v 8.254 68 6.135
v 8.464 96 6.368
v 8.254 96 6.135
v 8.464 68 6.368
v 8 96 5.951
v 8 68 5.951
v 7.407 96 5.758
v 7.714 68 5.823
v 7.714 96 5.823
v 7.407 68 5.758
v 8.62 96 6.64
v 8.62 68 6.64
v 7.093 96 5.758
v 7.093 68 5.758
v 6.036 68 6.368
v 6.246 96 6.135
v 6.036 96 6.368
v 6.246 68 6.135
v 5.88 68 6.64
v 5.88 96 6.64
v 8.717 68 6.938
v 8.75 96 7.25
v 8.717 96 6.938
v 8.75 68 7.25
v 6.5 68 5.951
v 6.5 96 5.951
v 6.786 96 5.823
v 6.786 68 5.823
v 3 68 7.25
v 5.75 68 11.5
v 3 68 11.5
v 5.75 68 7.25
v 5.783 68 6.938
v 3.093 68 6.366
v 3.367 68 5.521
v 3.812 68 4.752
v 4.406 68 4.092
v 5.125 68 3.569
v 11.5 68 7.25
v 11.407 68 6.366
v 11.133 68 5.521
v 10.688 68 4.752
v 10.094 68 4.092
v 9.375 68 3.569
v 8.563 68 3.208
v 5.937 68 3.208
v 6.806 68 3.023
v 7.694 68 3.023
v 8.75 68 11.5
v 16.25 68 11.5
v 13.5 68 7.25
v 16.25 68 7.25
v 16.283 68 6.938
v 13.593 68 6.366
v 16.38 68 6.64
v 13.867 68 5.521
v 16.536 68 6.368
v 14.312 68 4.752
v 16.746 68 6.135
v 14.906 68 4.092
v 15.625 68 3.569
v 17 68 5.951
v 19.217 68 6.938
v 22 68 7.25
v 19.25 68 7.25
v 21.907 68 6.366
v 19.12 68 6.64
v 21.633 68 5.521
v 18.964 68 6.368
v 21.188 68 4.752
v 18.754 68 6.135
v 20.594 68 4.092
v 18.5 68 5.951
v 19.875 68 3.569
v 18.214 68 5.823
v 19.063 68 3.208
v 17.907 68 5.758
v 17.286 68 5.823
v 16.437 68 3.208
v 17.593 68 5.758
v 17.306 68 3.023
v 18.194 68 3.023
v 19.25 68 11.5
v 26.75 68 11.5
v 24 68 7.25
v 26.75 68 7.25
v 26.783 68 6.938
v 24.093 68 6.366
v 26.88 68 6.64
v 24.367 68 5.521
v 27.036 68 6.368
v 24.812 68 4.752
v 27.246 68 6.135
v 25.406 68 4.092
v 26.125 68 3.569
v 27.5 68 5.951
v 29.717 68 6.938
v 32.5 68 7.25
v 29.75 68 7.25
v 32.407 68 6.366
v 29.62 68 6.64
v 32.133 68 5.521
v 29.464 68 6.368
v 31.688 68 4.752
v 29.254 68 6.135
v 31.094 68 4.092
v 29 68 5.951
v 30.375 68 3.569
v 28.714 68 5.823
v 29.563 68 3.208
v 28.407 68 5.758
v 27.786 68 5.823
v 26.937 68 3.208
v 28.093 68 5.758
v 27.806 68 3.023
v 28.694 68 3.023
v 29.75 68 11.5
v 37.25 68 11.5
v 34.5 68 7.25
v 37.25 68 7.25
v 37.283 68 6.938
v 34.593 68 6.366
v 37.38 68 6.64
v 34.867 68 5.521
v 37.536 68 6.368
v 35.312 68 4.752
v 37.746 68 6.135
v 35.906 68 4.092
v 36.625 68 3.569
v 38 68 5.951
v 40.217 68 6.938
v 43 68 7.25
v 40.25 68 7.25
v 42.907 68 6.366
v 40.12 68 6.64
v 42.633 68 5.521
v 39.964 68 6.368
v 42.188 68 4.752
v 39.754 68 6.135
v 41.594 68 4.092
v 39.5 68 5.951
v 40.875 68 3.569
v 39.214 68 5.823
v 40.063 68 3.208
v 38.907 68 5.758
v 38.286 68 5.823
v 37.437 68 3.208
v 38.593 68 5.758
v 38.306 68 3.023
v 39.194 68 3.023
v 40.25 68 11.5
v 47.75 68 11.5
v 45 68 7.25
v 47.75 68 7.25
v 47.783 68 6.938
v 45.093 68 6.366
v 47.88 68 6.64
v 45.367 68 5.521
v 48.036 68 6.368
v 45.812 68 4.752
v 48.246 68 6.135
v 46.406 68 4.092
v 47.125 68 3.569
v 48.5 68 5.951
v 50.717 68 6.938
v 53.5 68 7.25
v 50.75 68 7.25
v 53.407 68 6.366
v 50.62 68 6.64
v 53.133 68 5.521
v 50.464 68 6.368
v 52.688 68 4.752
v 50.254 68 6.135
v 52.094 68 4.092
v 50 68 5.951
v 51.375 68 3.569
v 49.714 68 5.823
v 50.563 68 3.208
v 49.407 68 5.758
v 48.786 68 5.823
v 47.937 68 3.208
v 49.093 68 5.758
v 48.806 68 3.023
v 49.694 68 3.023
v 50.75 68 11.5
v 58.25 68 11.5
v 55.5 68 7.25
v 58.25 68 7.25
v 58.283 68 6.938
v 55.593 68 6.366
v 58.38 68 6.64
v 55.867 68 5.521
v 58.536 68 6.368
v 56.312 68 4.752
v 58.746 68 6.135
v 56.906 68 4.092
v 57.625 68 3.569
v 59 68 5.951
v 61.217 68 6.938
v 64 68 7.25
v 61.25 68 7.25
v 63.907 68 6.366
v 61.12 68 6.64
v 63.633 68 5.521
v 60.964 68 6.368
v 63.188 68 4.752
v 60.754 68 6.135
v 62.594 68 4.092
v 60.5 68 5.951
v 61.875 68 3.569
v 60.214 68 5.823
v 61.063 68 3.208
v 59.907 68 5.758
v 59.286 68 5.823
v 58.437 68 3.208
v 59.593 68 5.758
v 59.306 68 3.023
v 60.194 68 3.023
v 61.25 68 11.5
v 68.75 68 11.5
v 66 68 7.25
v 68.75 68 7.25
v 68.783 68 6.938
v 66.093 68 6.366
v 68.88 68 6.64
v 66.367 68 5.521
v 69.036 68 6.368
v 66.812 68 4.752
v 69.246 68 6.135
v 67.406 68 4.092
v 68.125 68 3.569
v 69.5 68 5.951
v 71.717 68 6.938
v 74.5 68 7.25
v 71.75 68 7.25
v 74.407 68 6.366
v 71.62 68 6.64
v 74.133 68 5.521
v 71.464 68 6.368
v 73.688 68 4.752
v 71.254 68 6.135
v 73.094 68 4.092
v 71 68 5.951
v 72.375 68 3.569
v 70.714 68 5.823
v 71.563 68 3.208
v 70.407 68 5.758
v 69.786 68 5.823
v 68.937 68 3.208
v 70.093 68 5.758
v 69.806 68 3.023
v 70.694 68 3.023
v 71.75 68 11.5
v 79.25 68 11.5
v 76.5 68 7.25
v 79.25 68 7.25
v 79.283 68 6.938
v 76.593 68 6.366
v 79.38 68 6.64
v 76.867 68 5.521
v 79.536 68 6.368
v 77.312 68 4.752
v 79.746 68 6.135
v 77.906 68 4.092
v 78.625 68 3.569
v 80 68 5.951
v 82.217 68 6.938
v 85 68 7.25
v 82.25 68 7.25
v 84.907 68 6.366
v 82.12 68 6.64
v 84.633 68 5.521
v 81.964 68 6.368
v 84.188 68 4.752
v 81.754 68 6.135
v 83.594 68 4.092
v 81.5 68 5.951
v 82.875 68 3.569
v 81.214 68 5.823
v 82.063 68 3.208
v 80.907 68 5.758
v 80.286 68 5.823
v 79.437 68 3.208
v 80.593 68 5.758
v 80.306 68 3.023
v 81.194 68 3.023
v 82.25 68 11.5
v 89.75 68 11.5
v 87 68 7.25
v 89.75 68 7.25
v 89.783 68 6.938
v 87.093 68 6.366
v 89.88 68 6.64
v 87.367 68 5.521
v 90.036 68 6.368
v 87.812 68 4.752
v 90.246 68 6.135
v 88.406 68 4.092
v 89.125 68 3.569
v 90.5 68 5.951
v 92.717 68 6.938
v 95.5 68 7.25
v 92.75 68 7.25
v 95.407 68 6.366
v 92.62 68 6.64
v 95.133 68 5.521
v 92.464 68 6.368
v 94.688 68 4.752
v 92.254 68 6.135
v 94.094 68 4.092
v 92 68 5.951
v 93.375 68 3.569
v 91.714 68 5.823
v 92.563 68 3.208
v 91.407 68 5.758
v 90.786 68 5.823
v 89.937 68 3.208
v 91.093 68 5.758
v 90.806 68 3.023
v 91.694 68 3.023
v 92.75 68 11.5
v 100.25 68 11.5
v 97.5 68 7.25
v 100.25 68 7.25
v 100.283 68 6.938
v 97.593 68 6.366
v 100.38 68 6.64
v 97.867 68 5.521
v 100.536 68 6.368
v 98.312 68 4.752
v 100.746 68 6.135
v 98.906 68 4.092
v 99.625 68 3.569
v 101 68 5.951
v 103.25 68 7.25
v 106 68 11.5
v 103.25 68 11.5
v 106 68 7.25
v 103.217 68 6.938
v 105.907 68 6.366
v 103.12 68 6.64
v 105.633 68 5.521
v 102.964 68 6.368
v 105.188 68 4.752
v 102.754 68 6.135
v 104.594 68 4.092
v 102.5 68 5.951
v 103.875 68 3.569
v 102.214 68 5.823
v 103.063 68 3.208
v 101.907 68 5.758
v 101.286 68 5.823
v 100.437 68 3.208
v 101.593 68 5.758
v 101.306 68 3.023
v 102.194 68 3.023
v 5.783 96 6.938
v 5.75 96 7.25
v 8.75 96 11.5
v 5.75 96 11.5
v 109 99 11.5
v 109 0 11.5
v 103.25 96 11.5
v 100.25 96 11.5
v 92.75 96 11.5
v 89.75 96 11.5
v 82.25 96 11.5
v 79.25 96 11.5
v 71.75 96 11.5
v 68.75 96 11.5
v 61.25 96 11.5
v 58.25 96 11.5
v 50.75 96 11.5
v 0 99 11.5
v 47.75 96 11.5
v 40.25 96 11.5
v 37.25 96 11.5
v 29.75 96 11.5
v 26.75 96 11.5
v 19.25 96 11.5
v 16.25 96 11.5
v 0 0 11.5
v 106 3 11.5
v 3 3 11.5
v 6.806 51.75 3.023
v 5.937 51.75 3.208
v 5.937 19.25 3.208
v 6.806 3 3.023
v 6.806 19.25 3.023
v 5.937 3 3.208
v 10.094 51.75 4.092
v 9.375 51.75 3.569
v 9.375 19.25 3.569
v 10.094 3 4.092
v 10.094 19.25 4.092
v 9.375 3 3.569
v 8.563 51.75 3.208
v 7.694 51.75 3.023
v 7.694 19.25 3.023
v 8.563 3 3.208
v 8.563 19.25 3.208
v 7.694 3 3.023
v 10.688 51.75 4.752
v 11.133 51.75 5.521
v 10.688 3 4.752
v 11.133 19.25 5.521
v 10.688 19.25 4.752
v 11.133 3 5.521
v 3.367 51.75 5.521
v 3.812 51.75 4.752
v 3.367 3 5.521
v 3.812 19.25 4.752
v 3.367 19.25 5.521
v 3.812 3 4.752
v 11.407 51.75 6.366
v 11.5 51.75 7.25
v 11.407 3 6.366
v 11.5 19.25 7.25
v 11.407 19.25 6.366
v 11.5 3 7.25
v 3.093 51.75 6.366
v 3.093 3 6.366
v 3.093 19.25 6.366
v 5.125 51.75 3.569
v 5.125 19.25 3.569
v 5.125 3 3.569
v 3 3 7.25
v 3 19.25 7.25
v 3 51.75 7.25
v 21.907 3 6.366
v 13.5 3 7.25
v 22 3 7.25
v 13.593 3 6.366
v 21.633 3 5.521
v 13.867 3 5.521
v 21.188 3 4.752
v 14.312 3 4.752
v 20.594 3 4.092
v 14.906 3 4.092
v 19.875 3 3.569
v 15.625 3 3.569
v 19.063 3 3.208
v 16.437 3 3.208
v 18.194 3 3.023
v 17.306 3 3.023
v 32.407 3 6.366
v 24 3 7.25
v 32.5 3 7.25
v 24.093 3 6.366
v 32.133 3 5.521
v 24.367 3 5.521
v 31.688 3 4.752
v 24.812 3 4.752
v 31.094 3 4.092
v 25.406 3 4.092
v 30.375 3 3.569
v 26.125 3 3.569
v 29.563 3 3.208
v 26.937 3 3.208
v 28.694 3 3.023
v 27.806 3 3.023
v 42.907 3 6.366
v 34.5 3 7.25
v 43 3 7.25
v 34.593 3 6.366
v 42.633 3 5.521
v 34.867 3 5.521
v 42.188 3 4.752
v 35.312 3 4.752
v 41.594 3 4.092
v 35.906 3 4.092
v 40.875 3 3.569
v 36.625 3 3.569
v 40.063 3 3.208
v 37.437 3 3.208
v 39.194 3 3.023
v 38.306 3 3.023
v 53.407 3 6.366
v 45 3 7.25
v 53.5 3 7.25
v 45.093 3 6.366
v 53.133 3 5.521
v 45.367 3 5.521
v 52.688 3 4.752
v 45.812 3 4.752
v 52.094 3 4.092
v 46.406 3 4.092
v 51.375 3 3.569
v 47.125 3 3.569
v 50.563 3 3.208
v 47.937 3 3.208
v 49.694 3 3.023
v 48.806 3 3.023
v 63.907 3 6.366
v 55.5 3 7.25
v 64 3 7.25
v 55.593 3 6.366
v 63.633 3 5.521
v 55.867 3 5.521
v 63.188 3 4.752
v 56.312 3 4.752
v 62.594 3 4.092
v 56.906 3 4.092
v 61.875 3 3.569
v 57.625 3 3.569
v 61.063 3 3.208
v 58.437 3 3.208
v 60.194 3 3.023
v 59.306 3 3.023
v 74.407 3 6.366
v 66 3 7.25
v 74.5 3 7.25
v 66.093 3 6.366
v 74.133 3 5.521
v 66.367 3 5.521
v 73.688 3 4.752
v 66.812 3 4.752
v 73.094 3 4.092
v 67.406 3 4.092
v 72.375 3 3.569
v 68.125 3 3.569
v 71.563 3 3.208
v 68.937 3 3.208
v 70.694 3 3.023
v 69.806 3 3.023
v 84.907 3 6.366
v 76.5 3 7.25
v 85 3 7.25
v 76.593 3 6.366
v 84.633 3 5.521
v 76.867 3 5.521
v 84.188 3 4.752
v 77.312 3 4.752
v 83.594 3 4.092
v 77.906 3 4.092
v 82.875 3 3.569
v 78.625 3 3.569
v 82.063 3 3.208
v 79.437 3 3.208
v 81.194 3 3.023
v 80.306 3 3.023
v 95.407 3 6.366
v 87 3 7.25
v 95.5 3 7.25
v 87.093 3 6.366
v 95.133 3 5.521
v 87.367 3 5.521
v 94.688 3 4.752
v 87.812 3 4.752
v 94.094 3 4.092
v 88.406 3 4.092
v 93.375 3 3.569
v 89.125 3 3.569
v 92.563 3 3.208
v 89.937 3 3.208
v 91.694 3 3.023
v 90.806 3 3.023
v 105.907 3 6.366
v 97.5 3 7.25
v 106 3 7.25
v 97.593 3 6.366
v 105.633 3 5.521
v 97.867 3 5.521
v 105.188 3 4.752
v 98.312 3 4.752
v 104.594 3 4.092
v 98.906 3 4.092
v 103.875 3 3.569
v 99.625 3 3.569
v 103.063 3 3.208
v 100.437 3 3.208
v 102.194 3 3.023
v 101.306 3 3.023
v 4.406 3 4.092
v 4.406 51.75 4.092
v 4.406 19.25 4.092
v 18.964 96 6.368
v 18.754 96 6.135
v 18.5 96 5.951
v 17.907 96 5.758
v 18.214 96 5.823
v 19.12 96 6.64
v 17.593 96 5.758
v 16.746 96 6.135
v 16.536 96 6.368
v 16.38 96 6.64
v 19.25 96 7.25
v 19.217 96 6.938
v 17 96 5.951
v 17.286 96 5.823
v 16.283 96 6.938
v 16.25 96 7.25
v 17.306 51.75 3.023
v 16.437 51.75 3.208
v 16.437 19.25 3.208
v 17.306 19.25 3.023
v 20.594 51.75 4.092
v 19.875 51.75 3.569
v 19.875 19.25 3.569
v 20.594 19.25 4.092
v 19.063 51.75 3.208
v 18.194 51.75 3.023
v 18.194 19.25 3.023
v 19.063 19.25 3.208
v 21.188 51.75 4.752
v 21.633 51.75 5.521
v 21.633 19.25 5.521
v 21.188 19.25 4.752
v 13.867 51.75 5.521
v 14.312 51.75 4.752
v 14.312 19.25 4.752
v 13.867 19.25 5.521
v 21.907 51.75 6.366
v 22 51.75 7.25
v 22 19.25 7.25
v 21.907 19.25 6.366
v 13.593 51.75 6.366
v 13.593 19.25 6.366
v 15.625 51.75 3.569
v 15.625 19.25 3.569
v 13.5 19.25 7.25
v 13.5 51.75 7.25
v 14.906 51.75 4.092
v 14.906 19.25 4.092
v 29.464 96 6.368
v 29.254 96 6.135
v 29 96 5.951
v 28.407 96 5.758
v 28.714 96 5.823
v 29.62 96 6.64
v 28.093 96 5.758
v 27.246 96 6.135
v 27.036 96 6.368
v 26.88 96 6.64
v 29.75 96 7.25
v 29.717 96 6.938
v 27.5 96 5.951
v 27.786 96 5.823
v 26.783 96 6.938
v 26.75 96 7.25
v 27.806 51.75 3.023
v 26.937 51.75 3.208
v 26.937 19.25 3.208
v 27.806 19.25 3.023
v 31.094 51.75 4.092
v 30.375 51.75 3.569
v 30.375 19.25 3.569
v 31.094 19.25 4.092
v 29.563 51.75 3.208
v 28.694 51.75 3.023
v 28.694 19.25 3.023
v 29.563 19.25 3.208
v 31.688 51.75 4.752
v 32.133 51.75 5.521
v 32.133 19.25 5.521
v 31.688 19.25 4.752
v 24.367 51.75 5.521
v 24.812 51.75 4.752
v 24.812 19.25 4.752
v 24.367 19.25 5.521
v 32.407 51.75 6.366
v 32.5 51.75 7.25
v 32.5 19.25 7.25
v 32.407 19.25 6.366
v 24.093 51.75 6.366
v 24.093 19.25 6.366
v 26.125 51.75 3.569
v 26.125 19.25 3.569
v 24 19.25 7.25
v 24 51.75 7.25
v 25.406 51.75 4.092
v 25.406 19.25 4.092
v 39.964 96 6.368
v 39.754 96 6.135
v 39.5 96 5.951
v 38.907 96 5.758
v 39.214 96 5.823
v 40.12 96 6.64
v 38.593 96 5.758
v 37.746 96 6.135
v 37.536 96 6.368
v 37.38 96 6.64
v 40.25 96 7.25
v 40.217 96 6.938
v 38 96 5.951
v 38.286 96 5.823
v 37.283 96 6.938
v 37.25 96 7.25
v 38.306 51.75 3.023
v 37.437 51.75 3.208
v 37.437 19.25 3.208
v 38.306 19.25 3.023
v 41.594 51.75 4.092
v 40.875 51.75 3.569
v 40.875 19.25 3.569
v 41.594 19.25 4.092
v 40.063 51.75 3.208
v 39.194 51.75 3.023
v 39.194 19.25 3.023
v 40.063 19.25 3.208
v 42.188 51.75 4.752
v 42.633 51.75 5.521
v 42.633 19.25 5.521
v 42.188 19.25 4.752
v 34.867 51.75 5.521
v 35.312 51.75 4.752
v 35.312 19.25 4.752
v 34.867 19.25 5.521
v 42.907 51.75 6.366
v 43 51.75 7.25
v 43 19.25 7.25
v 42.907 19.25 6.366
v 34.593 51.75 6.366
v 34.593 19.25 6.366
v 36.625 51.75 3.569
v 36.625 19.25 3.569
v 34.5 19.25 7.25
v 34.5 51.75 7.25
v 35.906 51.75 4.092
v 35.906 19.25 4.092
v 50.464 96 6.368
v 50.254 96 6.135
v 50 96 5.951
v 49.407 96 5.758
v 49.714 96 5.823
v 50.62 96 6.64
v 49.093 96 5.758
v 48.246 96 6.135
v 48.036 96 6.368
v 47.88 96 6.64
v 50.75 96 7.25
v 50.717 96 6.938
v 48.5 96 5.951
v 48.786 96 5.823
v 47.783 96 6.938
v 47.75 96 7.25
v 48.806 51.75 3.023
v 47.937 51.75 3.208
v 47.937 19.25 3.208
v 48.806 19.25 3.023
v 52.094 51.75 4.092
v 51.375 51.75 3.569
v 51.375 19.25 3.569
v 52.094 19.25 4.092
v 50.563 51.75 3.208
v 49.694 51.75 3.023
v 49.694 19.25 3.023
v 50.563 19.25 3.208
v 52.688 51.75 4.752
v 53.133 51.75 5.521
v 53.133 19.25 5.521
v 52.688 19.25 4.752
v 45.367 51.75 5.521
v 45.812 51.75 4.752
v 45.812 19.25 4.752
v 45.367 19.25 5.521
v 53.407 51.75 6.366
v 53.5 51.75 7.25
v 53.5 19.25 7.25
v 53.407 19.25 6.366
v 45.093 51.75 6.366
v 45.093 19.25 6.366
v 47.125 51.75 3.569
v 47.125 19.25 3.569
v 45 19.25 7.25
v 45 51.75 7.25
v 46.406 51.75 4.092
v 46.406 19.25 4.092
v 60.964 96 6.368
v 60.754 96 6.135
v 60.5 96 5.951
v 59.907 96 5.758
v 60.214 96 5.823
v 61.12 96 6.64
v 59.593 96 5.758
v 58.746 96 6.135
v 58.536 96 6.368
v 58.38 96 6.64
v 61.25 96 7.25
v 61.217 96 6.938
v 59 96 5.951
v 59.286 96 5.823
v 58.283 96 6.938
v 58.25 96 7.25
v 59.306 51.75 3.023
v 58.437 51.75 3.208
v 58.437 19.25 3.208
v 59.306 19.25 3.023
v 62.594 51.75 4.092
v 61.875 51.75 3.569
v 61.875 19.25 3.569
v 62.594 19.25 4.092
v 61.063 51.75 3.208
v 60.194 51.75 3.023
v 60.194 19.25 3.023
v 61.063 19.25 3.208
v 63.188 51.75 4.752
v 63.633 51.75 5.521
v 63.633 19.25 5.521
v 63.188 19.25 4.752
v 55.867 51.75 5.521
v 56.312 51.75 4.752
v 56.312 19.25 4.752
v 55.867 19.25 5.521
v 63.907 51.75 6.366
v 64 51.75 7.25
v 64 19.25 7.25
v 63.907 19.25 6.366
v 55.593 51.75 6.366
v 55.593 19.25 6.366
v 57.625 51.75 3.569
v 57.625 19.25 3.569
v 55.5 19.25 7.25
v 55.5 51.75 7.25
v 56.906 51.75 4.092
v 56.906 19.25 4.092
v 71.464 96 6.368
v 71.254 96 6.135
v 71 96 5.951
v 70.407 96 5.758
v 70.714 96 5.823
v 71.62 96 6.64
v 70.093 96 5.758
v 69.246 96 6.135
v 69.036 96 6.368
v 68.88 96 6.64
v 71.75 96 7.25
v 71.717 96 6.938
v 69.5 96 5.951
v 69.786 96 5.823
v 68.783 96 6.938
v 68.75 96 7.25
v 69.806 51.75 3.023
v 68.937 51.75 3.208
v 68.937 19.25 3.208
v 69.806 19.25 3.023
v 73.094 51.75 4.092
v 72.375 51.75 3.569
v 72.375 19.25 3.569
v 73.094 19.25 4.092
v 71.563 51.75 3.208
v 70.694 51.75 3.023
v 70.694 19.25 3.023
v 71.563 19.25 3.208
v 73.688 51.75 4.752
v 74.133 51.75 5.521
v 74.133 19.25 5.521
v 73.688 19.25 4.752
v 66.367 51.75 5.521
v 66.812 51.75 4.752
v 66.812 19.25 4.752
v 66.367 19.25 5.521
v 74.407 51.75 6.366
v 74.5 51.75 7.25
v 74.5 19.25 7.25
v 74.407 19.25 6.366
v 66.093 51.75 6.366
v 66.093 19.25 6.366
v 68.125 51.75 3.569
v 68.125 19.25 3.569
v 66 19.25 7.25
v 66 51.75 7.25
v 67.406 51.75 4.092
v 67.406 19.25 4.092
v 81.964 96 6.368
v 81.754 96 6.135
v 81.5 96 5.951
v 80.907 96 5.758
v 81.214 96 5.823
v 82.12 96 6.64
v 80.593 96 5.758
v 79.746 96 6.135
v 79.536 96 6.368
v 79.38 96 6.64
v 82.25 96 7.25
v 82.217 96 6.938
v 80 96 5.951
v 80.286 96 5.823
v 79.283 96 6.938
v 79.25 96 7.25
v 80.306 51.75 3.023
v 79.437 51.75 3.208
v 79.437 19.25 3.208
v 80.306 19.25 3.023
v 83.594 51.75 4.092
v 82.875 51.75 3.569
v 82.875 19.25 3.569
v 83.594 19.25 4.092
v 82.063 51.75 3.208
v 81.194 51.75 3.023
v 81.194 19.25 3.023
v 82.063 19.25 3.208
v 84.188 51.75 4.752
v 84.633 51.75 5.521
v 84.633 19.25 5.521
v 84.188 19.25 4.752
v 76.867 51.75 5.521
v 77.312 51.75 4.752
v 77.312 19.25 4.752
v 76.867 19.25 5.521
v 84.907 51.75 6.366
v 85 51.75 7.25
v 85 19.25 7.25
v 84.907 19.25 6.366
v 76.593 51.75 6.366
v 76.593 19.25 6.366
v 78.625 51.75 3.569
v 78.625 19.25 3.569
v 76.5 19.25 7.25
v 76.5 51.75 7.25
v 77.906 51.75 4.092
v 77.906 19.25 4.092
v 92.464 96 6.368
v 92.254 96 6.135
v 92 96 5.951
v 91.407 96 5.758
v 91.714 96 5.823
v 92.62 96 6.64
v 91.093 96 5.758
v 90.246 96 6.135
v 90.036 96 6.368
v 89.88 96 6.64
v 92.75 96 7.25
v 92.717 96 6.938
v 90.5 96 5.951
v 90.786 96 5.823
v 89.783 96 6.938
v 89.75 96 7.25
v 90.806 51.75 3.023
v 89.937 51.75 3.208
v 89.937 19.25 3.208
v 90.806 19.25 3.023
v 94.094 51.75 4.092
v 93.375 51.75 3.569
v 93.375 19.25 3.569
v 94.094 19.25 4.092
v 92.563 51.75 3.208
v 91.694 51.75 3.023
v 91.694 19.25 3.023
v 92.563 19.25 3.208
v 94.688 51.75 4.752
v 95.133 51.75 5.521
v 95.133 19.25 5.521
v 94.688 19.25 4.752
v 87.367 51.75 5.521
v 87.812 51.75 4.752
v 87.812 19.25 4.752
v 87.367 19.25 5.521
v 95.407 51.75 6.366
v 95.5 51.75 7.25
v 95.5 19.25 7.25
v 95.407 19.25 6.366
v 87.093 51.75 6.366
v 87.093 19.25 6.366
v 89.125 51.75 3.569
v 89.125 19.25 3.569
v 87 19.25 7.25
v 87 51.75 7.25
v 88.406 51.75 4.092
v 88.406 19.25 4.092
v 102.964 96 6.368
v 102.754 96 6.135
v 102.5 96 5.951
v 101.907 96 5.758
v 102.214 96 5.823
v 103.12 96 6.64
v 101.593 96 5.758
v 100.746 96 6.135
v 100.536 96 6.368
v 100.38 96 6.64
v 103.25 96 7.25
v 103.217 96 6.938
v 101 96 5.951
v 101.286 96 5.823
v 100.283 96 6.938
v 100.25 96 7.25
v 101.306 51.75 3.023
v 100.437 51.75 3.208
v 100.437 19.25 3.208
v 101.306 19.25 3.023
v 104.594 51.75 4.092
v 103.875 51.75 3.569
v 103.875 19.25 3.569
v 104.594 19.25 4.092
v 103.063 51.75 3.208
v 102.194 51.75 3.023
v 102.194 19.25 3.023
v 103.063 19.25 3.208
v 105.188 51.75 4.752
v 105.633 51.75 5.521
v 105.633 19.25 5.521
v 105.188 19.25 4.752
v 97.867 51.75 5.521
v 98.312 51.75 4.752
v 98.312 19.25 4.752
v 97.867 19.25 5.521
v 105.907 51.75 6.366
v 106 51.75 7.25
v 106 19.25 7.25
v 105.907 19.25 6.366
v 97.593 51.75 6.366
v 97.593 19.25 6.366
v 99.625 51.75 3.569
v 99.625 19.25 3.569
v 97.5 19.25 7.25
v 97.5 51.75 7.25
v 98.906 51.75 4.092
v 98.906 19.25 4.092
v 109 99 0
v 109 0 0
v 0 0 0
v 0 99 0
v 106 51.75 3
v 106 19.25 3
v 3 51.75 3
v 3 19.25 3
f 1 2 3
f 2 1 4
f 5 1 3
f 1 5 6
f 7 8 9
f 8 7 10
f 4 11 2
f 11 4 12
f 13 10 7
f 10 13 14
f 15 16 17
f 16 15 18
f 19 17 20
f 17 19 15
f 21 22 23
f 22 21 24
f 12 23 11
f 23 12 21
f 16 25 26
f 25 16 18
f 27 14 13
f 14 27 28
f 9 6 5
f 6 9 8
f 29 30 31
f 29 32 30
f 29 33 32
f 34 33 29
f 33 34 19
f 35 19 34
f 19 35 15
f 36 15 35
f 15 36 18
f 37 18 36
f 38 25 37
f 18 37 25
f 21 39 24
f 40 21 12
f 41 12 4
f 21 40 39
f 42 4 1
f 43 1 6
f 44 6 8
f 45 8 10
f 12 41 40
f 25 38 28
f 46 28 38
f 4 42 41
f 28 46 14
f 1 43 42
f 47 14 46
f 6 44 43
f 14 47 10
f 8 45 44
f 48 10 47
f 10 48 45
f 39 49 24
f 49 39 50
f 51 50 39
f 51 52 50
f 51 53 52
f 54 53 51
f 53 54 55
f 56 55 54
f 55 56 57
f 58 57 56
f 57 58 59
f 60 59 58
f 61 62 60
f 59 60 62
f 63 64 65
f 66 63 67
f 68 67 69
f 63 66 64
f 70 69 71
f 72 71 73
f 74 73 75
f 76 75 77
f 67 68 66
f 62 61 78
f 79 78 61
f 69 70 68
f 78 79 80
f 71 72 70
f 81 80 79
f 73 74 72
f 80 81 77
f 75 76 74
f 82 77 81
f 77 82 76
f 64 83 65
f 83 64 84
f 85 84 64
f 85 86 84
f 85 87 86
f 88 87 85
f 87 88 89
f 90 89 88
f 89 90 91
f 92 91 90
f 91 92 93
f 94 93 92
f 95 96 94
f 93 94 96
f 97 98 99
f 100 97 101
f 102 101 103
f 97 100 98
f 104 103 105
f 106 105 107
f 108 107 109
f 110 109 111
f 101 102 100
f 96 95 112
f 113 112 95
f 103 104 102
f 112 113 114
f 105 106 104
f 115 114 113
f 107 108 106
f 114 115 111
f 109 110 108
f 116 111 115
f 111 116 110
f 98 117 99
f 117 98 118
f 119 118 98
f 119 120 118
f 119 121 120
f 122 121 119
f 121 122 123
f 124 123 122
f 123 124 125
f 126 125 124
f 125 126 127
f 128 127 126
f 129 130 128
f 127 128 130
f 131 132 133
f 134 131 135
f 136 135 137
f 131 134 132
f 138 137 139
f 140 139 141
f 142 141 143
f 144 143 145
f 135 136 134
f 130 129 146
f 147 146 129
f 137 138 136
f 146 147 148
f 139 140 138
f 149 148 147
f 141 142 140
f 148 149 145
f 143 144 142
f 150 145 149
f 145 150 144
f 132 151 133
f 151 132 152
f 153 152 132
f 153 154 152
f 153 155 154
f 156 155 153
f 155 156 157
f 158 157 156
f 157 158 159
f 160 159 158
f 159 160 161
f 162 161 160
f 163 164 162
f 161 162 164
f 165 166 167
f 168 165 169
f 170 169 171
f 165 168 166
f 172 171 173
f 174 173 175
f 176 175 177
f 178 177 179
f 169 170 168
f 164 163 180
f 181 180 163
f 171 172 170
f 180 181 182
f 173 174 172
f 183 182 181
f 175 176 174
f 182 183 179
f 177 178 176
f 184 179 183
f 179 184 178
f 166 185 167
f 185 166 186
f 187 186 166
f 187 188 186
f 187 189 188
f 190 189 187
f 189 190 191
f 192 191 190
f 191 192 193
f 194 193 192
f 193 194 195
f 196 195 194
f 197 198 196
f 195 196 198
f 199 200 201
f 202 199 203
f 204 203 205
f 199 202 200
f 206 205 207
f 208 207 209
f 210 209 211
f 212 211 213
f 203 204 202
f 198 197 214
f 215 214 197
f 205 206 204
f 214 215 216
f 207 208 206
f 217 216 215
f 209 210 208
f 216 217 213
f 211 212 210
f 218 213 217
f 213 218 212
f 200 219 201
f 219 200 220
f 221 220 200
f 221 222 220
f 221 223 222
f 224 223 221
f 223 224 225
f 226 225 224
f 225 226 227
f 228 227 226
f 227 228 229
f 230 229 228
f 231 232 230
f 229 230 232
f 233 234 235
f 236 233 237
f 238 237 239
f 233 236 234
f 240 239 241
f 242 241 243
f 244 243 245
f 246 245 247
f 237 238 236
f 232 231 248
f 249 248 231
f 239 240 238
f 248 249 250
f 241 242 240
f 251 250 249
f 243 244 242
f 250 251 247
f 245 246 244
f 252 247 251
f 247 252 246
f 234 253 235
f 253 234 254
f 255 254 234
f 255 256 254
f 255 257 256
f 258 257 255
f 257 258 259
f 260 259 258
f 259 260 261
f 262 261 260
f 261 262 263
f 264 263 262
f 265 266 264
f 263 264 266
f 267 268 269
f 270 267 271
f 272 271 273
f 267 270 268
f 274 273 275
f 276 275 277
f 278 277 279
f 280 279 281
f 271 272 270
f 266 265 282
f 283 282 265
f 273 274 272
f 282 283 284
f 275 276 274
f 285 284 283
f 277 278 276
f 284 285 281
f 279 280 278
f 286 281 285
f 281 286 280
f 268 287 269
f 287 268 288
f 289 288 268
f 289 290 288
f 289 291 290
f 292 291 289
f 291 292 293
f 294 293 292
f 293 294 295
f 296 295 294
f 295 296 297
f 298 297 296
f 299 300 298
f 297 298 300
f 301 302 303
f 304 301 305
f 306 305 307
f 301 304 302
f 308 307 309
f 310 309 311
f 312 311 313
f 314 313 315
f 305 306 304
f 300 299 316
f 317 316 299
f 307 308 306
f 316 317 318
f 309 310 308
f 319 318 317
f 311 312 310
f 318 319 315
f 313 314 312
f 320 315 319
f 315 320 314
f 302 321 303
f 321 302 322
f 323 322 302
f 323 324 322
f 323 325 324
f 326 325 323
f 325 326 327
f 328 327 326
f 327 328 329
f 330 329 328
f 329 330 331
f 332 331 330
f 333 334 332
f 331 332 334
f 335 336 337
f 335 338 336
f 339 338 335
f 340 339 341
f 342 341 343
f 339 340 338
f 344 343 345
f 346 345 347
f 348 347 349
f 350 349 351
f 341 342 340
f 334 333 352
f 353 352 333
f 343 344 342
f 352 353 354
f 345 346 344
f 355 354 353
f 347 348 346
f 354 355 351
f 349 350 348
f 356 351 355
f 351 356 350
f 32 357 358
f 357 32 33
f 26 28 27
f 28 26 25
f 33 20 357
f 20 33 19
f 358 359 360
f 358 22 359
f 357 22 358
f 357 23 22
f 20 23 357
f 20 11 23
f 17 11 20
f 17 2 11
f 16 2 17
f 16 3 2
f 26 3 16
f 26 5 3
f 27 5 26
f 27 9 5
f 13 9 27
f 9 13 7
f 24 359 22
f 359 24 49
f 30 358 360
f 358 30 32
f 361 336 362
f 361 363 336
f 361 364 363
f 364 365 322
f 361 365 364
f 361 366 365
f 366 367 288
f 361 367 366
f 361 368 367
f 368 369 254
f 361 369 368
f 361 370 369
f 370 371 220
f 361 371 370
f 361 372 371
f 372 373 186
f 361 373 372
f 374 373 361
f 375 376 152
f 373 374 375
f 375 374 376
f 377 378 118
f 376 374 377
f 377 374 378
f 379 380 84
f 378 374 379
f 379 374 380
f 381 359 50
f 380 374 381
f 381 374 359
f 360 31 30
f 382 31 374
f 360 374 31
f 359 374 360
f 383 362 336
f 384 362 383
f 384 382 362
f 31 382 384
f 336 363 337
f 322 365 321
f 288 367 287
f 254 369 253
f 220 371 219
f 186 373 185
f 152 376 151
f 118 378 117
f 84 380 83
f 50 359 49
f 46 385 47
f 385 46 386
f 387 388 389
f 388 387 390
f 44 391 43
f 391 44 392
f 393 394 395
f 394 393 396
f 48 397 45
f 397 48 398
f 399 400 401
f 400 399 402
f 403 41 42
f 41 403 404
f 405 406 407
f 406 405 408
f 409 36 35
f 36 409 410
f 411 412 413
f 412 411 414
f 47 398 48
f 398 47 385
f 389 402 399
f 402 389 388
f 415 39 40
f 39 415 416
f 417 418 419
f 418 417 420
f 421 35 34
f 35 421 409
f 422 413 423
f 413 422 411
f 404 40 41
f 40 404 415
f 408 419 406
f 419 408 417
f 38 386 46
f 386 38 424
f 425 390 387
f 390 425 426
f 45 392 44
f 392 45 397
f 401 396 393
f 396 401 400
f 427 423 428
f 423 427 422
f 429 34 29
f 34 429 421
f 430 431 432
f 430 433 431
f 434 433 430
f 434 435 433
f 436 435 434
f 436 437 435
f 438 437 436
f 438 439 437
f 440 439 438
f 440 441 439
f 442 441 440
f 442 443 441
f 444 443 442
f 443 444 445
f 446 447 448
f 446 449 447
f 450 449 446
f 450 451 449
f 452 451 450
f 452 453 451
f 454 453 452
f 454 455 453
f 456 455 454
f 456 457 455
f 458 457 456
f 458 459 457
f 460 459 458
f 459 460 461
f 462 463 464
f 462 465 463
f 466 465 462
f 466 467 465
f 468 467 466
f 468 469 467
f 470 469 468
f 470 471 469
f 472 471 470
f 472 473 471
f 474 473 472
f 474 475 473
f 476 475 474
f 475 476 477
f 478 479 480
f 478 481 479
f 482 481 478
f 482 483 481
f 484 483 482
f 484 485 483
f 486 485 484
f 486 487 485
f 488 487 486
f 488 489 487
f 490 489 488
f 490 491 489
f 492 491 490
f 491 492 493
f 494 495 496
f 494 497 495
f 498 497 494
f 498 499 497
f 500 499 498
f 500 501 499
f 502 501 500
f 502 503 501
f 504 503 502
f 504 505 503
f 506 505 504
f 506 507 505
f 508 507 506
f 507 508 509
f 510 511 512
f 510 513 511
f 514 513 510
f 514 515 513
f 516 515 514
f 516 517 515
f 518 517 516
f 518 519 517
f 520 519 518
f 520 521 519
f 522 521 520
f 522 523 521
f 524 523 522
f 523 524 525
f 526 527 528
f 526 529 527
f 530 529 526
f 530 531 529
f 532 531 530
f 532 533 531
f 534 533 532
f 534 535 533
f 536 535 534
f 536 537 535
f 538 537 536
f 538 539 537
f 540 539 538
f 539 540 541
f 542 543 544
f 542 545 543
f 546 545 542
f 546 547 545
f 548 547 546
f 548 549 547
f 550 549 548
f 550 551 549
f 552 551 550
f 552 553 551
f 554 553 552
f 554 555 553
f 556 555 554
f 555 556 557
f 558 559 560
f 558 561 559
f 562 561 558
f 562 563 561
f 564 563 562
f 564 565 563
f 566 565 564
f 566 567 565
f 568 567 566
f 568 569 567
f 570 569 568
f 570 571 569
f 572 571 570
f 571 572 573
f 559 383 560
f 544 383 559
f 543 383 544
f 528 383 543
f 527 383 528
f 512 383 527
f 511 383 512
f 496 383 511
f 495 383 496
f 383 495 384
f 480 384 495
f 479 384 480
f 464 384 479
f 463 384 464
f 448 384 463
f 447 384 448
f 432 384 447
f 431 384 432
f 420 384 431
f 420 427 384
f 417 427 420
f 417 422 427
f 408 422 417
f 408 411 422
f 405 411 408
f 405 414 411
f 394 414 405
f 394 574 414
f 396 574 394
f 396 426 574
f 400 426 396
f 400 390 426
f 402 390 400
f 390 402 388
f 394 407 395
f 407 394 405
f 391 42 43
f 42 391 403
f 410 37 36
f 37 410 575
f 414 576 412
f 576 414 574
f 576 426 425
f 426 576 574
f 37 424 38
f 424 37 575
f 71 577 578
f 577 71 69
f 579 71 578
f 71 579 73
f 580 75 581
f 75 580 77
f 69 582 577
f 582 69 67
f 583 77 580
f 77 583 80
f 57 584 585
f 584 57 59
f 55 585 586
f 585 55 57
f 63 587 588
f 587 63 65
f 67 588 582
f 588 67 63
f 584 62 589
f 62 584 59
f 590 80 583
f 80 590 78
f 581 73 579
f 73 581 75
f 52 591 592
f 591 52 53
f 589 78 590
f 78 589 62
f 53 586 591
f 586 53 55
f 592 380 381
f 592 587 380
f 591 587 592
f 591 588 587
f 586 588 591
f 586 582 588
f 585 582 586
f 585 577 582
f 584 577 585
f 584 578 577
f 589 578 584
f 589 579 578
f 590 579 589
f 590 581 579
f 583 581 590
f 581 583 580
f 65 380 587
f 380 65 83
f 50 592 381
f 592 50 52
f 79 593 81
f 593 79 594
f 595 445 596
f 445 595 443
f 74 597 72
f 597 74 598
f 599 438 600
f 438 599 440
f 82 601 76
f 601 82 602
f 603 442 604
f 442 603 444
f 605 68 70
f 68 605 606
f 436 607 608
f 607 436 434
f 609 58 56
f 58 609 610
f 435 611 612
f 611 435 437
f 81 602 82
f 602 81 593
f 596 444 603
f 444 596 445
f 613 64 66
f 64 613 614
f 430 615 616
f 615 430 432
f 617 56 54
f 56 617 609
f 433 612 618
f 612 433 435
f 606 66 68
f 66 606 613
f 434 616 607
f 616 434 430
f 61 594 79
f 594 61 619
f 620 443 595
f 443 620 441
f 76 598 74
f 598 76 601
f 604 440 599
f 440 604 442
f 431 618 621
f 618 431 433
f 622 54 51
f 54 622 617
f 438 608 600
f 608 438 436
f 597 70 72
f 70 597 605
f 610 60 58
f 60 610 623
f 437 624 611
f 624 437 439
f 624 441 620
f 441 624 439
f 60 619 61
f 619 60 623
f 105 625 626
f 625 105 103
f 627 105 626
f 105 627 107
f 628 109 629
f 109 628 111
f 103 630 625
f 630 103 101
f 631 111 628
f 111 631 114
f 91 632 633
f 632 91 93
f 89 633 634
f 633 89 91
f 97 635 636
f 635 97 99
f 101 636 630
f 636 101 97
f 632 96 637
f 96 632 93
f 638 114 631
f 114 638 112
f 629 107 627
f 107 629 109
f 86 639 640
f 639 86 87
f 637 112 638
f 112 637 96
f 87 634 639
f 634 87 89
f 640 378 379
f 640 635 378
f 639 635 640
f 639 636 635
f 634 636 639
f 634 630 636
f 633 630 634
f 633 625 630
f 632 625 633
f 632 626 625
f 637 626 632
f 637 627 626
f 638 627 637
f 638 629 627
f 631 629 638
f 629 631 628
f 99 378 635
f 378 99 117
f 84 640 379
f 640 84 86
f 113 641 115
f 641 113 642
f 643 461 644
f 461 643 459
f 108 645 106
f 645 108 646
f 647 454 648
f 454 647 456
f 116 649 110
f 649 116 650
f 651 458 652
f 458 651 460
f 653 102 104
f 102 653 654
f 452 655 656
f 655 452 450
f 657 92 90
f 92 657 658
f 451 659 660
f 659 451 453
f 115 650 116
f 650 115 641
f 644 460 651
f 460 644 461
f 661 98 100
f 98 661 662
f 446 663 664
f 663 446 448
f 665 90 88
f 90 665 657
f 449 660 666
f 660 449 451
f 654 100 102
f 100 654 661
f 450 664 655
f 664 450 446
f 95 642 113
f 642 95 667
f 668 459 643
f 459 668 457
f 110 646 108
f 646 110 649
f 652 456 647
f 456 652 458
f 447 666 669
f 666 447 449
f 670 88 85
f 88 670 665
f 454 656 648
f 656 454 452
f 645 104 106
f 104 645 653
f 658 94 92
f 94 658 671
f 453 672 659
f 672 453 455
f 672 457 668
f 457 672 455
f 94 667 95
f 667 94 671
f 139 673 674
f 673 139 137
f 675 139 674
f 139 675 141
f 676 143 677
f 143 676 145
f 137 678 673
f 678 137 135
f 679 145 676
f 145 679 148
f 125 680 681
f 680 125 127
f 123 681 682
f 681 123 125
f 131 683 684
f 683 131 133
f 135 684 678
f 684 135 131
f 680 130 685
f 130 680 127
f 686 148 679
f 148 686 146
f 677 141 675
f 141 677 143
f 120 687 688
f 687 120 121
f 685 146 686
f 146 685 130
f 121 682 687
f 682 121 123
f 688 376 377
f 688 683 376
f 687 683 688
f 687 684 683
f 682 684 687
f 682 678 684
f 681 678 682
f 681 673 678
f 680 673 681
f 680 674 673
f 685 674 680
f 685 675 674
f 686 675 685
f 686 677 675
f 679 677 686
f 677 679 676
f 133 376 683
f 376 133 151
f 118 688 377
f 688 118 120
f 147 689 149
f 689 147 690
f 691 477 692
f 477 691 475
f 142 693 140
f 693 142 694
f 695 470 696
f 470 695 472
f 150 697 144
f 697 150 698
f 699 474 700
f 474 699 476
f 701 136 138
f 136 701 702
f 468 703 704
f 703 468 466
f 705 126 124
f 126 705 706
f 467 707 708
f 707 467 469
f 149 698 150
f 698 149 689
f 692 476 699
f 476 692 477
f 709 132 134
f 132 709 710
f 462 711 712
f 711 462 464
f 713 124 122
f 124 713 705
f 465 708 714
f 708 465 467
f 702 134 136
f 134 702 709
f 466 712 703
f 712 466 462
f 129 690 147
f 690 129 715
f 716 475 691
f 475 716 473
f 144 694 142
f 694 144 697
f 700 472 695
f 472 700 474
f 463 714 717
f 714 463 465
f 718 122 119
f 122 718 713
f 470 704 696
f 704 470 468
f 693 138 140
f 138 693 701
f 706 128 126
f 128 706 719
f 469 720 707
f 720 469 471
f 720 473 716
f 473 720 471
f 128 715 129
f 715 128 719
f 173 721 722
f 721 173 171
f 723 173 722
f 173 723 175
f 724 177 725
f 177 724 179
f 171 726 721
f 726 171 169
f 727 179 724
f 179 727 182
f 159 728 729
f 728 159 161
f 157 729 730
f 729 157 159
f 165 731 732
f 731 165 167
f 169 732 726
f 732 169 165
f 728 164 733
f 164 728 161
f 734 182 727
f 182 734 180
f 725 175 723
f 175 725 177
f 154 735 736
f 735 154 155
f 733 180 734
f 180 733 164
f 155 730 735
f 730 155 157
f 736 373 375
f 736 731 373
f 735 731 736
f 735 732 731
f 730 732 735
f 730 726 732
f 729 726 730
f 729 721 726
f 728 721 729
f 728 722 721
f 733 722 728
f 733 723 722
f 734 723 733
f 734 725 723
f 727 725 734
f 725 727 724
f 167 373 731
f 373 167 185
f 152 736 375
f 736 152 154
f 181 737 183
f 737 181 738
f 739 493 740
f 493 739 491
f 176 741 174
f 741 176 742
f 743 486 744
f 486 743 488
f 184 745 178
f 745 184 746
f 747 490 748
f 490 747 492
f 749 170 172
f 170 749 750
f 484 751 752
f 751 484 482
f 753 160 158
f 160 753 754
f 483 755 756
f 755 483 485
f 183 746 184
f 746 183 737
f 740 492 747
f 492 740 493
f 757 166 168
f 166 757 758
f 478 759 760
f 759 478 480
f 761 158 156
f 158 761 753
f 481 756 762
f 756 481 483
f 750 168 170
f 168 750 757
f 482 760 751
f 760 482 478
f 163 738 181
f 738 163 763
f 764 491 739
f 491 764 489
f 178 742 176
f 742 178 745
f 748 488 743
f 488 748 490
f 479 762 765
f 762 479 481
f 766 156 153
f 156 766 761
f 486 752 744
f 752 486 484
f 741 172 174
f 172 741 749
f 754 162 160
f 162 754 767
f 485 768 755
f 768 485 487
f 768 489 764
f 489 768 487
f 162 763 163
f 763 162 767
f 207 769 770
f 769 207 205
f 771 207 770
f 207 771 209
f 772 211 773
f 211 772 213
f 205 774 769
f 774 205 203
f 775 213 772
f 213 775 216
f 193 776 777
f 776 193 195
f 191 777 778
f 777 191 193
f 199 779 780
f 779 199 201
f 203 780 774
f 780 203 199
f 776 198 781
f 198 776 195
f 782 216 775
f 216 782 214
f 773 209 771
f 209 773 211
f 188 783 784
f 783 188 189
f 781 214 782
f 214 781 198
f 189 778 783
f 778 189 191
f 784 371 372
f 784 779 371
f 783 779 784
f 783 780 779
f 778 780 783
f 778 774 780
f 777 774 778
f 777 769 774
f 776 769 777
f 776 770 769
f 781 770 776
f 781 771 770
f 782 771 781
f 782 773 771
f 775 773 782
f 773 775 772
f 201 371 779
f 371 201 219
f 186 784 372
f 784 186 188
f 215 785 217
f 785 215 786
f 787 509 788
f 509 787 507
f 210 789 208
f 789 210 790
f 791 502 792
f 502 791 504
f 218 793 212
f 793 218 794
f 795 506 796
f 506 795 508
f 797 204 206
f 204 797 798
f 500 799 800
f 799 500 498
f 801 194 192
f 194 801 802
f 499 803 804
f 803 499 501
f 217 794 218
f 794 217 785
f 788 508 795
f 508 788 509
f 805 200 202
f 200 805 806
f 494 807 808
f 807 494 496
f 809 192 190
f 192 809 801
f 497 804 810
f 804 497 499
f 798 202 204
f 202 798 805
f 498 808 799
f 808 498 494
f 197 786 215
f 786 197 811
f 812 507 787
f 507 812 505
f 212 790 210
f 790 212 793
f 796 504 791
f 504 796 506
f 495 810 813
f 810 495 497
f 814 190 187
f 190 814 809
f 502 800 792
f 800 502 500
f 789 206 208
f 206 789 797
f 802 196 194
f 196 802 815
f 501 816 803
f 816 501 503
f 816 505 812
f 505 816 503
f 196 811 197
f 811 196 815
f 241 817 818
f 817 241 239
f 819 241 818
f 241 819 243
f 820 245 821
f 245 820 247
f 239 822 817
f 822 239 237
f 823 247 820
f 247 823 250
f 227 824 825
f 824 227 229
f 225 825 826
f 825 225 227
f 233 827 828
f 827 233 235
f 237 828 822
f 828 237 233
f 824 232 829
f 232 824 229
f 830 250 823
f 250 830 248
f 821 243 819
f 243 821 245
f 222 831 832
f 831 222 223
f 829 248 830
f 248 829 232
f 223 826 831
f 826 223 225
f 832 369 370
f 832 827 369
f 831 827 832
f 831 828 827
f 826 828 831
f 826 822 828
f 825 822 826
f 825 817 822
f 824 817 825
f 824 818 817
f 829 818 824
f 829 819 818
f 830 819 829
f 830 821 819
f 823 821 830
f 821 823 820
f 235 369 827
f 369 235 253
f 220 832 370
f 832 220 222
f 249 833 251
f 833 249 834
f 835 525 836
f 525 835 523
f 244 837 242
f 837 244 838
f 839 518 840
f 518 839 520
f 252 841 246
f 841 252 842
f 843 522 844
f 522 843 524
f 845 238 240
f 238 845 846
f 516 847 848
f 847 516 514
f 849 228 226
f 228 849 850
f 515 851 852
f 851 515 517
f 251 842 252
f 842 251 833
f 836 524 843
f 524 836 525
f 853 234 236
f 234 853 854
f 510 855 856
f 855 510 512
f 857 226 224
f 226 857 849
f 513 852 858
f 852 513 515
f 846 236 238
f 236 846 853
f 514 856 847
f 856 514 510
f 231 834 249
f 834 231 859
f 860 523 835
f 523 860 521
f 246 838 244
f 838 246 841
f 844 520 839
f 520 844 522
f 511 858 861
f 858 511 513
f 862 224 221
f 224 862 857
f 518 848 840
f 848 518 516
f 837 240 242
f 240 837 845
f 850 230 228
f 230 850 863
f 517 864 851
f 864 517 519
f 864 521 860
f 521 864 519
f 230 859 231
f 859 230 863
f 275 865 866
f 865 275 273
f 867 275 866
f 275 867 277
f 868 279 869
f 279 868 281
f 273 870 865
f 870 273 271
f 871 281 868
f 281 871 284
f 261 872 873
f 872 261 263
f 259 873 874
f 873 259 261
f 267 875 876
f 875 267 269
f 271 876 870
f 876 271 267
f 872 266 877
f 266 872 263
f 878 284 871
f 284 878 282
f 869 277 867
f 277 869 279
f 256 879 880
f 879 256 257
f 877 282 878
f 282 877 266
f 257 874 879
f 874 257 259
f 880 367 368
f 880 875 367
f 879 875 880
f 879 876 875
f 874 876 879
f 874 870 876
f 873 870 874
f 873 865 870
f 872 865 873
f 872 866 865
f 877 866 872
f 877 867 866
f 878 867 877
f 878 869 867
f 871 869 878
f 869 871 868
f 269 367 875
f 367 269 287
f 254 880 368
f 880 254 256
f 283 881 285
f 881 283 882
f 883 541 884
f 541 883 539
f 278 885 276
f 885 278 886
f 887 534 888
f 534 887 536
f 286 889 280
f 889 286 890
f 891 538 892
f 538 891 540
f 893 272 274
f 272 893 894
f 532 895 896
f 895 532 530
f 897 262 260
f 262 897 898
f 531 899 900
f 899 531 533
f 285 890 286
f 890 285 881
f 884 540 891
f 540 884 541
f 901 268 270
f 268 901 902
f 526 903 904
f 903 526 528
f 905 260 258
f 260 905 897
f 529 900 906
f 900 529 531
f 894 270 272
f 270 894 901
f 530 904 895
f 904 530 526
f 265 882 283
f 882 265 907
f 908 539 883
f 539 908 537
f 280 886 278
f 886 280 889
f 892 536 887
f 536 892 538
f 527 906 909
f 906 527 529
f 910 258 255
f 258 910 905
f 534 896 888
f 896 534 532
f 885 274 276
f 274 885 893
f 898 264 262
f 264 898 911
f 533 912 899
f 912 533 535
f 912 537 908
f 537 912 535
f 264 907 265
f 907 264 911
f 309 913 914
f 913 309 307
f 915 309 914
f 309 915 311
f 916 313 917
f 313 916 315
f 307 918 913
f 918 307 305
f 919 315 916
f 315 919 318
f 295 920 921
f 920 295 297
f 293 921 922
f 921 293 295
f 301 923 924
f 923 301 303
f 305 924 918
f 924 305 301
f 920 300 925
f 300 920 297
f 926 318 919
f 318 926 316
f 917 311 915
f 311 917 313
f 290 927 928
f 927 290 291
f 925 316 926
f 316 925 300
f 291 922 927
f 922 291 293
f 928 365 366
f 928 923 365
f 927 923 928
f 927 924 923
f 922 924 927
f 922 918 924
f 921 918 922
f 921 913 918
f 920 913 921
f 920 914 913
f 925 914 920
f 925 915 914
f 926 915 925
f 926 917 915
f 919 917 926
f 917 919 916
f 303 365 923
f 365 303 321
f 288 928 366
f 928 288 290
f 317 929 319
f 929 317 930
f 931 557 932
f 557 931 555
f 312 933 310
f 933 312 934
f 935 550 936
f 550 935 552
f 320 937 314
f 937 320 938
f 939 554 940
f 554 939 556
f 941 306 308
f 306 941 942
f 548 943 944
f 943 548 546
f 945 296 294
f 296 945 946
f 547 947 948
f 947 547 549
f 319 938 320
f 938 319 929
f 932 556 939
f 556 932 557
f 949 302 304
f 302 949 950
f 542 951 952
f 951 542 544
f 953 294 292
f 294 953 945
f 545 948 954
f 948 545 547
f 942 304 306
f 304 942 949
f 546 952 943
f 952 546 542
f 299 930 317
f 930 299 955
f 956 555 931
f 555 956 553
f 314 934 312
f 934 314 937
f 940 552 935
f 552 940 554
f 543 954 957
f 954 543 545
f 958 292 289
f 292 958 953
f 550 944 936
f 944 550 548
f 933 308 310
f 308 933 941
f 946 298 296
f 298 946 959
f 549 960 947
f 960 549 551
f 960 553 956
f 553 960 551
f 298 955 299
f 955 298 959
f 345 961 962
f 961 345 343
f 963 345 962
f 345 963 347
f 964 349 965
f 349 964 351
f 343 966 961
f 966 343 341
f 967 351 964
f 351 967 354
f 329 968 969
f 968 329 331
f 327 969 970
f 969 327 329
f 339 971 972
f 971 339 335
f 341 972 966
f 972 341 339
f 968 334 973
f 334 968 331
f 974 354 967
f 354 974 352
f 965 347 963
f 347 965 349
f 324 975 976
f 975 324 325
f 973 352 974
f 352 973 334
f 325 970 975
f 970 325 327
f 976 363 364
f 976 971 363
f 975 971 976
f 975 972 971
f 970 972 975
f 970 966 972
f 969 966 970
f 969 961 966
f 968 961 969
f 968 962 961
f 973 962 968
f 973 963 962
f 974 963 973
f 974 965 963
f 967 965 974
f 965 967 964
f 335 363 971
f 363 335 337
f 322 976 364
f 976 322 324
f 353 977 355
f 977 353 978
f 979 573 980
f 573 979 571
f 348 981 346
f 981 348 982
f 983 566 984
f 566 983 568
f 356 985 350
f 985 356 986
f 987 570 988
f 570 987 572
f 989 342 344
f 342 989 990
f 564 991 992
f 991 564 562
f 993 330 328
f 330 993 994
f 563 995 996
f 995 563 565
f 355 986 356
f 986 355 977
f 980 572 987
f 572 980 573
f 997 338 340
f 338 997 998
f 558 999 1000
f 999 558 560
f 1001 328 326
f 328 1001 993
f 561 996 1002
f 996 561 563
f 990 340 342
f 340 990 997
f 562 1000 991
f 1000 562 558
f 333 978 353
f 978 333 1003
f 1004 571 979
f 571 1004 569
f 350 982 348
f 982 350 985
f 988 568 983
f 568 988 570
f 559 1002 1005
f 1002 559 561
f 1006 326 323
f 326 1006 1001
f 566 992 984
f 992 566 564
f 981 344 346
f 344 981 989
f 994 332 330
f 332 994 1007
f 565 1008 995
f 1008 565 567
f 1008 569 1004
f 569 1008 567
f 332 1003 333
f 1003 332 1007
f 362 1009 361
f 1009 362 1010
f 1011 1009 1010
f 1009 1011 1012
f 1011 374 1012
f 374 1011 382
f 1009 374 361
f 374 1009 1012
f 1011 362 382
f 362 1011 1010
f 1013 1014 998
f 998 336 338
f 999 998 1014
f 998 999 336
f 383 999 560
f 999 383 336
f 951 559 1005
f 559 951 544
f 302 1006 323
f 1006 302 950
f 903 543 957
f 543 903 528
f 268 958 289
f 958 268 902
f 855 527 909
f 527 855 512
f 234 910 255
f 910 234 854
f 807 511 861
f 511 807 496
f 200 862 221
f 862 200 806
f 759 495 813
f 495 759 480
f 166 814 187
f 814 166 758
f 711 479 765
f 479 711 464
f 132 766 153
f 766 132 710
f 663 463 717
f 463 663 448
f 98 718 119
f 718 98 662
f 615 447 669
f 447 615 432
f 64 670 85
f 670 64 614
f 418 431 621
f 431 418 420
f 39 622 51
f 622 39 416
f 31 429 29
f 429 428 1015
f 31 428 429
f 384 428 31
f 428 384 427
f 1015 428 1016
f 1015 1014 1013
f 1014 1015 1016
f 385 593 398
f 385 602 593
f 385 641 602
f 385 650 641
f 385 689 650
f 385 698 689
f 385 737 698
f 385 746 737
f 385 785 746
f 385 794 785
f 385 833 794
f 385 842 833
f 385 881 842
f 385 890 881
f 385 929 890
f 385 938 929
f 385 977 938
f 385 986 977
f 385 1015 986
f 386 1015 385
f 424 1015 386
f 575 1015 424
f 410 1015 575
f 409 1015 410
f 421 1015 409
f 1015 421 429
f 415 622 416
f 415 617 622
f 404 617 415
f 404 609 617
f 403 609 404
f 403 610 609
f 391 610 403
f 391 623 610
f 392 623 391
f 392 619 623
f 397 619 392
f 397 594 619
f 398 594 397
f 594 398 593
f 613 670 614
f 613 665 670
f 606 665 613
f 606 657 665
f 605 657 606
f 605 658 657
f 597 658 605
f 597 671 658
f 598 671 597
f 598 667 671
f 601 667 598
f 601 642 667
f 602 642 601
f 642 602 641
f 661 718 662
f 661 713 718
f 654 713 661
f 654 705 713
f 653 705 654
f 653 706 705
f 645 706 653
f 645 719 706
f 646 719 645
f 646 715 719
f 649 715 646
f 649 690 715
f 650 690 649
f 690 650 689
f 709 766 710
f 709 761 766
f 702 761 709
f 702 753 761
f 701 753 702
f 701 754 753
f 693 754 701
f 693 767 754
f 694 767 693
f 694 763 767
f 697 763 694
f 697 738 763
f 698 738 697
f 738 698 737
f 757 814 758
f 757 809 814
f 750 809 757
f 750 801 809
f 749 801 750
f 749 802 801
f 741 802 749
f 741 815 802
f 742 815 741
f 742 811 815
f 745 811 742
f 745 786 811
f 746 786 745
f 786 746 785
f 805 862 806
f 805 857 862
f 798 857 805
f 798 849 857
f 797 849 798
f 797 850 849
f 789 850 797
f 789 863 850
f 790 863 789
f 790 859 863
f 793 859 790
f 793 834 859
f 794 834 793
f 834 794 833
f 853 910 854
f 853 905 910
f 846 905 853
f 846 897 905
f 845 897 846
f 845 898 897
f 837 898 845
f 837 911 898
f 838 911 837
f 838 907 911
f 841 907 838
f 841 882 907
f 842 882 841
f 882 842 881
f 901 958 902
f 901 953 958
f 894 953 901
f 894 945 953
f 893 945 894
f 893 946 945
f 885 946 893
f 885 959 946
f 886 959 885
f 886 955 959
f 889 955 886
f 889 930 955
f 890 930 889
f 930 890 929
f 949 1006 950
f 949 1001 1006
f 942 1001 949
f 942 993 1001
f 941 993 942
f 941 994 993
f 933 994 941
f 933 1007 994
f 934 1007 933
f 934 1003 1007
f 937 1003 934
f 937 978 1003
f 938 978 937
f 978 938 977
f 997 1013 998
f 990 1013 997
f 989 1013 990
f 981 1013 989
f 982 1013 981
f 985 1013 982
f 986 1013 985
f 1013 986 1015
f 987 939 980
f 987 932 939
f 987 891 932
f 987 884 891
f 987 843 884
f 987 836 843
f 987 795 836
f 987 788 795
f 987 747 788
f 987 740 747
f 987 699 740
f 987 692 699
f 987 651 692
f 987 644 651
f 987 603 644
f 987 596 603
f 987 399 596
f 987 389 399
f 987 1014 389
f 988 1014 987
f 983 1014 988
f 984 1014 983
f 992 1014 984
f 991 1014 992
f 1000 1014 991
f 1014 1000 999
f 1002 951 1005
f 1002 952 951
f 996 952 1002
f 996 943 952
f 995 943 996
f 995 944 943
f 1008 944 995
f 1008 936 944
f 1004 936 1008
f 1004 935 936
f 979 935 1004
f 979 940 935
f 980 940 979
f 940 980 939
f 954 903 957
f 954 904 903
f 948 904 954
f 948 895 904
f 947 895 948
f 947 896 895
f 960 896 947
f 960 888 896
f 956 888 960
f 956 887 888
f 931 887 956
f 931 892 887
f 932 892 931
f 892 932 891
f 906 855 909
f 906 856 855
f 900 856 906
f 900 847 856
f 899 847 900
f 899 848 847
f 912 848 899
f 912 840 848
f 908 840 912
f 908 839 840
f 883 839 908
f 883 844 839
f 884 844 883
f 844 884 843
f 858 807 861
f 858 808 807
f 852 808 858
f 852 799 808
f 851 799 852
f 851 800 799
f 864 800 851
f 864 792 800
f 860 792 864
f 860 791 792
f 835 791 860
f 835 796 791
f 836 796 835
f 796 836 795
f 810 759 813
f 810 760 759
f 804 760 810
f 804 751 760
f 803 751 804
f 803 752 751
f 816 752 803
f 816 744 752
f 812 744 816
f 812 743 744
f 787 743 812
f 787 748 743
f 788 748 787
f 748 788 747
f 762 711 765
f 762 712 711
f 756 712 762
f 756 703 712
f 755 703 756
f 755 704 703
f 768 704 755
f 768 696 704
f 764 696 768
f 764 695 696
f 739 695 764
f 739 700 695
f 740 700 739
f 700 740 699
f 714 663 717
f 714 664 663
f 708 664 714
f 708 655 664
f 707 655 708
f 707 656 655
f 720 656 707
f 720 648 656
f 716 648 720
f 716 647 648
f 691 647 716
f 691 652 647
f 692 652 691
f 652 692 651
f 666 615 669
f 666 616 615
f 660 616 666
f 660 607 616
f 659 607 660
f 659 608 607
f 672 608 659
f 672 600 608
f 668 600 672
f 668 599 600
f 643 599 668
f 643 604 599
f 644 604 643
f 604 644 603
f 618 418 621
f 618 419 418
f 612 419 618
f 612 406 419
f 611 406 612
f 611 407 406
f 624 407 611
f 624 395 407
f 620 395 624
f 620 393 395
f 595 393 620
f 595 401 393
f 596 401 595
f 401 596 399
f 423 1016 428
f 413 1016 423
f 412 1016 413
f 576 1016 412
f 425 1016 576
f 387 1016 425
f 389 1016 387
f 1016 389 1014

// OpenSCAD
$fs=0.2;

module probe_tray(
    n_probes=10,
    needle_radius=1.5,
    body_radius=4.25,
    needle_length=28,
    body_length=65,
    wall_size=3,
    body_gap=2) {
  total_width = wall_size*2 + body_radius*2*n_probes + body_gap*(n_probes-1);
  total_depth = body_length + needle_length + 2*wall_size;
  total_height = 2*body_radius + wall_size;

  module probe() {
    union() {
      translate([body_radius, 0, body_radius])
      rotate([-90, 0, 0])
        union() {
          cylinder(r=body_radius, h=body_length);
          translate([0, 0, body_length]) {
            cylinder(r=needle_radius, h=needle_length);
            translate([-needle_radius, -body_radius, 0])
              cube([needle_radius*2, body_radius, needle_length]);
          }
        }
    }
  }

  difference() {
    // Main body
    color("blue", 0.25)
      cube([total_width, total_depth, total_height]);
    // Probe cutouts
    for(i=[0:n_probes-1]) {
      x_offset = i*(body_radius*2+body_gap);
      translate([wall_size+x_offset, wall_size, wall_size])
        #probe();
    }
    // Finger access
    translate([wall_size, wall_size, wall_size+body_radius])
      cube([total_width-2*wall_size, body_length, body_radius]);
    // Deeper in the middle
    translate([wall_size, wall_size+body_length/4, wall_size])
      cube([total_width-2*wall_size, body_length/2, total_height]);
  }
}

probe_tray();
